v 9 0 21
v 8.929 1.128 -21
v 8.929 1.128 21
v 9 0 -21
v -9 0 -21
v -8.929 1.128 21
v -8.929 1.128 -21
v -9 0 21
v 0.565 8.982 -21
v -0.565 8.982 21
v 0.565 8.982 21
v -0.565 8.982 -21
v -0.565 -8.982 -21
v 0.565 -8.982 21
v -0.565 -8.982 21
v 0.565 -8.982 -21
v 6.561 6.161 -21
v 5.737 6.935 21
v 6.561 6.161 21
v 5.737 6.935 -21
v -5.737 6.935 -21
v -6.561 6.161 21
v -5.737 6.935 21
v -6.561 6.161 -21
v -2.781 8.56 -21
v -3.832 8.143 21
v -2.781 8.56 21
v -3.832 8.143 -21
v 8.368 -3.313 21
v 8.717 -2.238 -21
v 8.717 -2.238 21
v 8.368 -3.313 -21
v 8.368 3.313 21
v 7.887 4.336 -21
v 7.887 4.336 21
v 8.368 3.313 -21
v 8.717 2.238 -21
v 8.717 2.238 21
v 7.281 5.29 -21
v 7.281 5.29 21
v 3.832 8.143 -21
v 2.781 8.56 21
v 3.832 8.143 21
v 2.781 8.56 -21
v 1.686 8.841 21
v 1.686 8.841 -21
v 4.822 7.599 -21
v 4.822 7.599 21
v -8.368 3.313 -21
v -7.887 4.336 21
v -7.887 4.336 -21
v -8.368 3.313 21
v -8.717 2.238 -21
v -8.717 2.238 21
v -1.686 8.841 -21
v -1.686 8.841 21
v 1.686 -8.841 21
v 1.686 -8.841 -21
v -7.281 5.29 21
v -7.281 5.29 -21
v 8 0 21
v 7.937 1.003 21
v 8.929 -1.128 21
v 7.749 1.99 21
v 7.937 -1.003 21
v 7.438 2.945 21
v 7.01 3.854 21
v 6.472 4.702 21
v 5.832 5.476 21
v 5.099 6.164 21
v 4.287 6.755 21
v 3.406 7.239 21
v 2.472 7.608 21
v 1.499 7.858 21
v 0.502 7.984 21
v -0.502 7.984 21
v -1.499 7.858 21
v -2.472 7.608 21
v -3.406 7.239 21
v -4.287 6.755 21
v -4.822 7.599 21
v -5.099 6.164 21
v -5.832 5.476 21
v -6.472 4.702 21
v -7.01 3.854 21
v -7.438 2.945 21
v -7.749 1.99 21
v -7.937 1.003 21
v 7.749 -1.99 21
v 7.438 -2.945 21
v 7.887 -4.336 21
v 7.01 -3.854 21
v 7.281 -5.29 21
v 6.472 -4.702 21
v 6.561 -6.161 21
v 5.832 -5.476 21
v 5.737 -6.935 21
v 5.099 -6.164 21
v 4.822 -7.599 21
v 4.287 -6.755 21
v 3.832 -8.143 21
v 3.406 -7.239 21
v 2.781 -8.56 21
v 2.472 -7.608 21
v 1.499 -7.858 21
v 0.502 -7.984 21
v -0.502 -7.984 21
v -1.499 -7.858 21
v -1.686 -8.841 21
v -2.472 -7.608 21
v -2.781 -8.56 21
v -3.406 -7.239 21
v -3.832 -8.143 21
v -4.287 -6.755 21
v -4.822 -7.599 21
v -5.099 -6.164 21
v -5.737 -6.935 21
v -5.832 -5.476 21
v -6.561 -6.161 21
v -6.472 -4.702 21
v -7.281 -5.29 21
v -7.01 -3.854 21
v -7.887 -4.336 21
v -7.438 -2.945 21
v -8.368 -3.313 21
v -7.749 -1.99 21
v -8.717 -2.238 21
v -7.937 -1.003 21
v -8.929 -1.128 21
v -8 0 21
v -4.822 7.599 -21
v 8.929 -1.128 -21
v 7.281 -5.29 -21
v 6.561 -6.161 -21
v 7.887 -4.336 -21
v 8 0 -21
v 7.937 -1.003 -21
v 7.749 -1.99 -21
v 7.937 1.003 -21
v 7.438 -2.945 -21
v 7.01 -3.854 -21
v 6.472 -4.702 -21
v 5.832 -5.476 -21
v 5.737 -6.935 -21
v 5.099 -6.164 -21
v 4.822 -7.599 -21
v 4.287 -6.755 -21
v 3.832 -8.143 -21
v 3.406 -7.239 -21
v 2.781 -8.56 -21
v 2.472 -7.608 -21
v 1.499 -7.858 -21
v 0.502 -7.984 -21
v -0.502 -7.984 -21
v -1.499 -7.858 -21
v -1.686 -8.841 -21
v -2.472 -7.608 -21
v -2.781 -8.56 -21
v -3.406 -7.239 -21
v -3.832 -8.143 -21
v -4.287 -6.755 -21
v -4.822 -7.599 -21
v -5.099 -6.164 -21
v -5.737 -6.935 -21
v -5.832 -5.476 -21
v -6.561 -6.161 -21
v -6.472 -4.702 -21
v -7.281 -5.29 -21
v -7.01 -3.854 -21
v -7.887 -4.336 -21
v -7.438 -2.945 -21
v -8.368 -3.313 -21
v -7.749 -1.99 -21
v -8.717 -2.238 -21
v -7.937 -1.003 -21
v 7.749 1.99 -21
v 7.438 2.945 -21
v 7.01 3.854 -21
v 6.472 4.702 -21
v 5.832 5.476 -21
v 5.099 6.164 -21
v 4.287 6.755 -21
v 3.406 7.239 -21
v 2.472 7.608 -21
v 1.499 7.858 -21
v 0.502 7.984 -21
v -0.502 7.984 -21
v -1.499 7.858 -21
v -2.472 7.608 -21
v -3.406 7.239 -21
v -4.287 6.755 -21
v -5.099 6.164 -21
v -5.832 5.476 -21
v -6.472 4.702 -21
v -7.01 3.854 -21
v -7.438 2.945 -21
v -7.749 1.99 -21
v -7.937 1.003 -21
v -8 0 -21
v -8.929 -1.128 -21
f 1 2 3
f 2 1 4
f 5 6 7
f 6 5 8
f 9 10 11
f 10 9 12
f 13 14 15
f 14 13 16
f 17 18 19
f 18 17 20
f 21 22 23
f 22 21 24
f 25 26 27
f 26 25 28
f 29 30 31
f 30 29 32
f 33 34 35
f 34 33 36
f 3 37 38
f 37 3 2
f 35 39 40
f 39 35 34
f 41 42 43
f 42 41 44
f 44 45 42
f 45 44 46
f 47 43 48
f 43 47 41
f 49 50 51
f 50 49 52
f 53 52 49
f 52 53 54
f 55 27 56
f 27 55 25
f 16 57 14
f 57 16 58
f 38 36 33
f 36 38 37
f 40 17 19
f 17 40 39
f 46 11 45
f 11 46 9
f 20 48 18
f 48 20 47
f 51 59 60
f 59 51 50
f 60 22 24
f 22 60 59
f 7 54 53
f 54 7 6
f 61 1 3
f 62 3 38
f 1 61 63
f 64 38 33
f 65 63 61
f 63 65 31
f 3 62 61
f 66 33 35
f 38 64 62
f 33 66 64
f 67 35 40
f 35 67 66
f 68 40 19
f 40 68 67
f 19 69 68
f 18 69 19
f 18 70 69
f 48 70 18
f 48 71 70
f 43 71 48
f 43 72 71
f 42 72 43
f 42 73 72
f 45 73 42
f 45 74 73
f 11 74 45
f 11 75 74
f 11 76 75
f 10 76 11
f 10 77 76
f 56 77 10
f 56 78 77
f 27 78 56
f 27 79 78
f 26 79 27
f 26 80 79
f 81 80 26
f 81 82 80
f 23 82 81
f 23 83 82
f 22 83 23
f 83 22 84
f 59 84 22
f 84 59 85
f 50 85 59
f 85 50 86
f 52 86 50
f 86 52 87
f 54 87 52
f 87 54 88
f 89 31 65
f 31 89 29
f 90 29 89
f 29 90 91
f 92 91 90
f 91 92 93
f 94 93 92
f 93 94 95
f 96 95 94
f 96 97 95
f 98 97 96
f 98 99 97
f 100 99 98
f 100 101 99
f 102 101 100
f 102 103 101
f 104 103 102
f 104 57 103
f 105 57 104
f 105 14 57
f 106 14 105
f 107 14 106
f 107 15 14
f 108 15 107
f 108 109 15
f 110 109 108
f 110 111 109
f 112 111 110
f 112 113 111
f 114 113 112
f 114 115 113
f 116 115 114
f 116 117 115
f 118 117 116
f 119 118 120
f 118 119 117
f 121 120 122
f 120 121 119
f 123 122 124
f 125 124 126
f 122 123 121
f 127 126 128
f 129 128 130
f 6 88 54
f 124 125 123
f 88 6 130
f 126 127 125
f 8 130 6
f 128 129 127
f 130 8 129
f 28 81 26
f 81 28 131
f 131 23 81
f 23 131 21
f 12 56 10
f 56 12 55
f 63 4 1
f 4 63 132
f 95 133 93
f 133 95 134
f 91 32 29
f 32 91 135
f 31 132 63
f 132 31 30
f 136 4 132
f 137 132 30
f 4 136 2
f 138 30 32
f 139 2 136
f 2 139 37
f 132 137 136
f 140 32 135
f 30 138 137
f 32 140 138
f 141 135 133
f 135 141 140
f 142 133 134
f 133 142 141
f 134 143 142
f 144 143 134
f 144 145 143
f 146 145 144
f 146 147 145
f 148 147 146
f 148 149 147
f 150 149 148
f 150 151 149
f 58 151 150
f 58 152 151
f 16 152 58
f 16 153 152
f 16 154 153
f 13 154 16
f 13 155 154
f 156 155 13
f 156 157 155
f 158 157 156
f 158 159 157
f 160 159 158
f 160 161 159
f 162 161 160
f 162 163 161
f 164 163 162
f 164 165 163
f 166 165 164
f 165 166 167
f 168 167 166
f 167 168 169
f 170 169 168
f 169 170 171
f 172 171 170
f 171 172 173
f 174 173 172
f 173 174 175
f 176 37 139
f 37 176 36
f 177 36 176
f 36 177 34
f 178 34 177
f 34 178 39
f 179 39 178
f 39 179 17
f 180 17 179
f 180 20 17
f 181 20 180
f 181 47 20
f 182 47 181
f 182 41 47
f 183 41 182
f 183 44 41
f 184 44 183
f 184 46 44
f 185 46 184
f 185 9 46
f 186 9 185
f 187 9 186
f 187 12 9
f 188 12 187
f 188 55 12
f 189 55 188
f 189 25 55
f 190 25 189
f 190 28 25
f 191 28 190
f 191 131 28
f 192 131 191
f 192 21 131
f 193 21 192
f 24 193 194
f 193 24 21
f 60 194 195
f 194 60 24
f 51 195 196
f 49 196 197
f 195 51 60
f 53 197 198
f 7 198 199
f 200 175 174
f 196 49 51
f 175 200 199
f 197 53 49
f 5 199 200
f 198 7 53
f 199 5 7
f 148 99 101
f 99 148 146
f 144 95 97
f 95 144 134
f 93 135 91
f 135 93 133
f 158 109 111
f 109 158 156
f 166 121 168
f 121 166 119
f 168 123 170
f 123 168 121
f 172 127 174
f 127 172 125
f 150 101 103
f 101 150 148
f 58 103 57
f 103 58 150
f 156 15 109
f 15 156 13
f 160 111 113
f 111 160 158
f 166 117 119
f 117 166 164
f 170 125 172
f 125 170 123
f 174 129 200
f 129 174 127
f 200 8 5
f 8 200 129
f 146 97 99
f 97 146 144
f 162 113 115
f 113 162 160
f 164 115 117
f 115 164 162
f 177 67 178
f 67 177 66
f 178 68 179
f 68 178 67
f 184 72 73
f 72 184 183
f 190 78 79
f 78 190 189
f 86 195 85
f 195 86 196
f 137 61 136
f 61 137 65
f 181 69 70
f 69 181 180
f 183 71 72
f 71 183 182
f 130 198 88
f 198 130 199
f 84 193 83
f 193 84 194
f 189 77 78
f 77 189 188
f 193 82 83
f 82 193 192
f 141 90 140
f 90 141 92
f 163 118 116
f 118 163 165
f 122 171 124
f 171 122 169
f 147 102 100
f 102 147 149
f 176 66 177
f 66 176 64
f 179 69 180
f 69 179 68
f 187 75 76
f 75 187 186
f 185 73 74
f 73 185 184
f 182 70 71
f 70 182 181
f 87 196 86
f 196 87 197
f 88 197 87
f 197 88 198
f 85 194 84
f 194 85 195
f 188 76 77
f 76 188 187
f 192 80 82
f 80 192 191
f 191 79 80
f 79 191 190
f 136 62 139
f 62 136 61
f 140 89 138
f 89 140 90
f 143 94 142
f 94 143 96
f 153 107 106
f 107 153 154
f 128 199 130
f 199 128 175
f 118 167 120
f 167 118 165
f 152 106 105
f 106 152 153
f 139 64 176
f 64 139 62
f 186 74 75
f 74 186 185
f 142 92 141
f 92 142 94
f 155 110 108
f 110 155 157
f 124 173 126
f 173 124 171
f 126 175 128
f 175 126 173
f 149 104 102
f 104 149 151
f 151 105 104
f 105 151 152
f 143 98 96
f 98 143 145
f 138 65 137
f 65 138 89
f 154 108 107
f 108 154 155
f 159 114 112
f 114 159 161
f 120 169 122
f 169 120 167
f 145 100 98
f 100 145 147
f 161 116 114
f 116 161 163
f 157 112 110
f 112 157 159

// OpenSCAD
$fn = 50;


difference() {
	union() {
		translate(v = [0, 0, -21.0000000000]) {
			cylinder(h = 42, r = 9.0000000000);
		}
	}
	union() {
		translate(v = [0, 0, -100.0000000000]) {
			cylinder(h = 200, r = 8);
		}
	}
}
